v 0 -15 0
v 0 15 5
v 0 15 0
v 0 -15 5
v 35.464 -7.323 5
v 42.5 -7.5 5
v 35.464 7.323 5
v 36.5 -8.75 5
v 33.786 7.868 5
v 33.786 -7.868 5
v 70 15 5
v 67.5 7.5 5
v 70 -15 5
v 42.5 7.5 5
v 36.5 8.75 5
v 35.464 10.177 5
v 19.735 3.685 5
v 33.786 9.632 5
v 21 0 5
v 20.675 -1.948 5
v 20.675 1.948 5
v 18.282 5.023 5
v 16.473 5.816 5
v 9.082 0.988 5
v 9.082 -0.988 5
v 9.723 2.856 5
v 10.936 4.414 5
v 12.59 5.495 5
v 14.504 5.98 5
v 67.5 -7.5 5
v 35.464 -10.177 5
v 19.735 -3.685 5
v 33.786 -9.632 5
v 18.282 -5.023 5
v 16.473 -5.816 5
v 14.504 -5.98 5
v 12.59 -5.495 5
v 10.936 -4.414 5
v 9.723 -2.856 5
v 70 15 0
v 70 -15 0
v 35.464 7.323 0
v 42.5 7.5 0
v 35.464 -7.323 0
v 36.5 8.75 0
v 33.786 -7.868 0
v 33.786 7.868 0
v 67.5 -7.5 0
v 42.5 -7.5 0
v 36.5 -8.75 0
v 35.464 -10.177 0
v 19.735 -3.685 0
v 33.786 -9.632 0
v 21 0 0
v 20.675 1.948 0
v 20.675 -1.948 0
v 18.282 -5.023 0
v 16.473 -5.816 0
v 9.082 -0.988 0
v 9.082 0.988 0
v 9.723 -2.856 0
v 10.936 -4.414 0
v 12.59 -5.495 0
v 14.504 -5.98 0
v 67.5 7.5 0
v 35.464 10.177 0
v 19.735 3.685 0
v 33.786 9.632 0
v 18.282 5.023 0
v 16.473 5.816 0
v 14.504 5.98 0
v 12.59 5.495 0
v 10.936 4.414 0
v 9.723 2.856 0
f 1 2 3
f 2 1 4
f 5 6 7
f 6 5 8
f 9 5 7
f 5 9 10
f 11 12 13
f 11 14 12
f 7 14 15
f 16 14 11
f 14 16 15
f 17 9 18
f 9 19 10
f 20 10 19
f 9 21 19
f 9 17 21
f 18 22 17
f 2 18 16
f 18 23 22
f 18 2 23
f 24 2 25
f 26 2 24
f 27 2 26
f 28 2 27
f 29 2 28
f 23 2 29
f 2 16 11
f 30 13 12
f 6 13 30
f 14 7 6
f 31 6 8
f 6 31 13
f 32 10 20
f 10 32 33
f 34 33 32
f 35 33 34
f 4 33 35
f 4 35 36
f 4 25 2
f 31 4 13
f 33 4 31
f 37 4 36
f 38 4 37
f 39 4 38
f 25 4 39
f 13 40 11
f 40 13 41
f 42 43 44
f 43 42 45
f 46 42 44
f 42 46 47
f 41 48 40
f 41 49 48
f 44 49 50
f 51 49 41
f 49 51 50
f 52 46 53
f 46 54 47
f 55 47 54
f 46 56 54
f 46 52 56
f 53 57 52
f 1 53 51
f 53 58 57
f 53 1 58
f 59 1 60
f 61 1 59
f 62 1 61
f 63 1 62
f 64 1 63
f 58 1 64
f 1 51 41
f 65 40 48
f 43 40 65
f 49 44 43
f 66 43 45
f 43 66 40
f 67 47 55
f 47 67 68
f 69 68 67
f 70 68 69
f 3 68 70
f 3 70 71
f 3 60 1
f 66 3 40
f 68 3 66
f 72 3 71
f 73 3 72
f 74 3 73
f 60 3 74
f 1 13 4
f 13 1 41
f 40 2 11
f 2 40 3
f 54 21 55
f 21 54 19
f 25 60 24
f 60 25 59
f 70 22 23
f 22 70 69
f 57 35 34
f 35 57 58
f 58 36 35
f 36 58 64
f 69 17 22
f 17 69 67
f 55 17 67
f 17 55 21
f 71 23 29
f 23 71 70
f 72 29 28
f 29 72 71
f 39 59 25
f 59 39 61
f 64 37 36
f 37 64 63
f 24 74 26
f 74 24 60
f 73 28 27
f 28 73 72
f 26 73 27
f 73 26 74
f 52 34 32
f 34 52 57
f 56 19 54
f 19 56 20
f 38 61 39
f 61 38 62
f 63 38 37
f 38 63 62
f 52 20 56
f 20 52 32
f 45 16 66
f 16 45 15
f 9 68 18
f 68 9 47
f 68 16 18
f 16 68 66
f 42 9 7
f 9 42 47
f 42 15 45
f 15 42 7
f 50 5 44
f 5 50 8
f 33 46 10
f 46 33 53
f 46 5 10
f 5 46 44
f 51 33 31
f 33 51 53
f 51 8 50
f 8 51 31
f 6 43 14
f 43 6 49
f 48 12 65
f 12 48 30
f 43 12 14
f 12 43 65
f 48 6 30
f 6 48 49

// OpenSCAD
module main() {
	difference() {
		translate([0, -15, 0])
			cube([70, 30, 5]);

		translate([15, 0])
			cylinder(d = 12, h = 5);

		translate([15+20, 17.5/2])
			cylinder(d = 3, h = 5);
		translate([15+20, -17.5/2])
			cylinder(d = 3, h = 5);

		translate([15+20+7.5, -15/2])
			cube([25, 15, 5]);
	}
}

main();
